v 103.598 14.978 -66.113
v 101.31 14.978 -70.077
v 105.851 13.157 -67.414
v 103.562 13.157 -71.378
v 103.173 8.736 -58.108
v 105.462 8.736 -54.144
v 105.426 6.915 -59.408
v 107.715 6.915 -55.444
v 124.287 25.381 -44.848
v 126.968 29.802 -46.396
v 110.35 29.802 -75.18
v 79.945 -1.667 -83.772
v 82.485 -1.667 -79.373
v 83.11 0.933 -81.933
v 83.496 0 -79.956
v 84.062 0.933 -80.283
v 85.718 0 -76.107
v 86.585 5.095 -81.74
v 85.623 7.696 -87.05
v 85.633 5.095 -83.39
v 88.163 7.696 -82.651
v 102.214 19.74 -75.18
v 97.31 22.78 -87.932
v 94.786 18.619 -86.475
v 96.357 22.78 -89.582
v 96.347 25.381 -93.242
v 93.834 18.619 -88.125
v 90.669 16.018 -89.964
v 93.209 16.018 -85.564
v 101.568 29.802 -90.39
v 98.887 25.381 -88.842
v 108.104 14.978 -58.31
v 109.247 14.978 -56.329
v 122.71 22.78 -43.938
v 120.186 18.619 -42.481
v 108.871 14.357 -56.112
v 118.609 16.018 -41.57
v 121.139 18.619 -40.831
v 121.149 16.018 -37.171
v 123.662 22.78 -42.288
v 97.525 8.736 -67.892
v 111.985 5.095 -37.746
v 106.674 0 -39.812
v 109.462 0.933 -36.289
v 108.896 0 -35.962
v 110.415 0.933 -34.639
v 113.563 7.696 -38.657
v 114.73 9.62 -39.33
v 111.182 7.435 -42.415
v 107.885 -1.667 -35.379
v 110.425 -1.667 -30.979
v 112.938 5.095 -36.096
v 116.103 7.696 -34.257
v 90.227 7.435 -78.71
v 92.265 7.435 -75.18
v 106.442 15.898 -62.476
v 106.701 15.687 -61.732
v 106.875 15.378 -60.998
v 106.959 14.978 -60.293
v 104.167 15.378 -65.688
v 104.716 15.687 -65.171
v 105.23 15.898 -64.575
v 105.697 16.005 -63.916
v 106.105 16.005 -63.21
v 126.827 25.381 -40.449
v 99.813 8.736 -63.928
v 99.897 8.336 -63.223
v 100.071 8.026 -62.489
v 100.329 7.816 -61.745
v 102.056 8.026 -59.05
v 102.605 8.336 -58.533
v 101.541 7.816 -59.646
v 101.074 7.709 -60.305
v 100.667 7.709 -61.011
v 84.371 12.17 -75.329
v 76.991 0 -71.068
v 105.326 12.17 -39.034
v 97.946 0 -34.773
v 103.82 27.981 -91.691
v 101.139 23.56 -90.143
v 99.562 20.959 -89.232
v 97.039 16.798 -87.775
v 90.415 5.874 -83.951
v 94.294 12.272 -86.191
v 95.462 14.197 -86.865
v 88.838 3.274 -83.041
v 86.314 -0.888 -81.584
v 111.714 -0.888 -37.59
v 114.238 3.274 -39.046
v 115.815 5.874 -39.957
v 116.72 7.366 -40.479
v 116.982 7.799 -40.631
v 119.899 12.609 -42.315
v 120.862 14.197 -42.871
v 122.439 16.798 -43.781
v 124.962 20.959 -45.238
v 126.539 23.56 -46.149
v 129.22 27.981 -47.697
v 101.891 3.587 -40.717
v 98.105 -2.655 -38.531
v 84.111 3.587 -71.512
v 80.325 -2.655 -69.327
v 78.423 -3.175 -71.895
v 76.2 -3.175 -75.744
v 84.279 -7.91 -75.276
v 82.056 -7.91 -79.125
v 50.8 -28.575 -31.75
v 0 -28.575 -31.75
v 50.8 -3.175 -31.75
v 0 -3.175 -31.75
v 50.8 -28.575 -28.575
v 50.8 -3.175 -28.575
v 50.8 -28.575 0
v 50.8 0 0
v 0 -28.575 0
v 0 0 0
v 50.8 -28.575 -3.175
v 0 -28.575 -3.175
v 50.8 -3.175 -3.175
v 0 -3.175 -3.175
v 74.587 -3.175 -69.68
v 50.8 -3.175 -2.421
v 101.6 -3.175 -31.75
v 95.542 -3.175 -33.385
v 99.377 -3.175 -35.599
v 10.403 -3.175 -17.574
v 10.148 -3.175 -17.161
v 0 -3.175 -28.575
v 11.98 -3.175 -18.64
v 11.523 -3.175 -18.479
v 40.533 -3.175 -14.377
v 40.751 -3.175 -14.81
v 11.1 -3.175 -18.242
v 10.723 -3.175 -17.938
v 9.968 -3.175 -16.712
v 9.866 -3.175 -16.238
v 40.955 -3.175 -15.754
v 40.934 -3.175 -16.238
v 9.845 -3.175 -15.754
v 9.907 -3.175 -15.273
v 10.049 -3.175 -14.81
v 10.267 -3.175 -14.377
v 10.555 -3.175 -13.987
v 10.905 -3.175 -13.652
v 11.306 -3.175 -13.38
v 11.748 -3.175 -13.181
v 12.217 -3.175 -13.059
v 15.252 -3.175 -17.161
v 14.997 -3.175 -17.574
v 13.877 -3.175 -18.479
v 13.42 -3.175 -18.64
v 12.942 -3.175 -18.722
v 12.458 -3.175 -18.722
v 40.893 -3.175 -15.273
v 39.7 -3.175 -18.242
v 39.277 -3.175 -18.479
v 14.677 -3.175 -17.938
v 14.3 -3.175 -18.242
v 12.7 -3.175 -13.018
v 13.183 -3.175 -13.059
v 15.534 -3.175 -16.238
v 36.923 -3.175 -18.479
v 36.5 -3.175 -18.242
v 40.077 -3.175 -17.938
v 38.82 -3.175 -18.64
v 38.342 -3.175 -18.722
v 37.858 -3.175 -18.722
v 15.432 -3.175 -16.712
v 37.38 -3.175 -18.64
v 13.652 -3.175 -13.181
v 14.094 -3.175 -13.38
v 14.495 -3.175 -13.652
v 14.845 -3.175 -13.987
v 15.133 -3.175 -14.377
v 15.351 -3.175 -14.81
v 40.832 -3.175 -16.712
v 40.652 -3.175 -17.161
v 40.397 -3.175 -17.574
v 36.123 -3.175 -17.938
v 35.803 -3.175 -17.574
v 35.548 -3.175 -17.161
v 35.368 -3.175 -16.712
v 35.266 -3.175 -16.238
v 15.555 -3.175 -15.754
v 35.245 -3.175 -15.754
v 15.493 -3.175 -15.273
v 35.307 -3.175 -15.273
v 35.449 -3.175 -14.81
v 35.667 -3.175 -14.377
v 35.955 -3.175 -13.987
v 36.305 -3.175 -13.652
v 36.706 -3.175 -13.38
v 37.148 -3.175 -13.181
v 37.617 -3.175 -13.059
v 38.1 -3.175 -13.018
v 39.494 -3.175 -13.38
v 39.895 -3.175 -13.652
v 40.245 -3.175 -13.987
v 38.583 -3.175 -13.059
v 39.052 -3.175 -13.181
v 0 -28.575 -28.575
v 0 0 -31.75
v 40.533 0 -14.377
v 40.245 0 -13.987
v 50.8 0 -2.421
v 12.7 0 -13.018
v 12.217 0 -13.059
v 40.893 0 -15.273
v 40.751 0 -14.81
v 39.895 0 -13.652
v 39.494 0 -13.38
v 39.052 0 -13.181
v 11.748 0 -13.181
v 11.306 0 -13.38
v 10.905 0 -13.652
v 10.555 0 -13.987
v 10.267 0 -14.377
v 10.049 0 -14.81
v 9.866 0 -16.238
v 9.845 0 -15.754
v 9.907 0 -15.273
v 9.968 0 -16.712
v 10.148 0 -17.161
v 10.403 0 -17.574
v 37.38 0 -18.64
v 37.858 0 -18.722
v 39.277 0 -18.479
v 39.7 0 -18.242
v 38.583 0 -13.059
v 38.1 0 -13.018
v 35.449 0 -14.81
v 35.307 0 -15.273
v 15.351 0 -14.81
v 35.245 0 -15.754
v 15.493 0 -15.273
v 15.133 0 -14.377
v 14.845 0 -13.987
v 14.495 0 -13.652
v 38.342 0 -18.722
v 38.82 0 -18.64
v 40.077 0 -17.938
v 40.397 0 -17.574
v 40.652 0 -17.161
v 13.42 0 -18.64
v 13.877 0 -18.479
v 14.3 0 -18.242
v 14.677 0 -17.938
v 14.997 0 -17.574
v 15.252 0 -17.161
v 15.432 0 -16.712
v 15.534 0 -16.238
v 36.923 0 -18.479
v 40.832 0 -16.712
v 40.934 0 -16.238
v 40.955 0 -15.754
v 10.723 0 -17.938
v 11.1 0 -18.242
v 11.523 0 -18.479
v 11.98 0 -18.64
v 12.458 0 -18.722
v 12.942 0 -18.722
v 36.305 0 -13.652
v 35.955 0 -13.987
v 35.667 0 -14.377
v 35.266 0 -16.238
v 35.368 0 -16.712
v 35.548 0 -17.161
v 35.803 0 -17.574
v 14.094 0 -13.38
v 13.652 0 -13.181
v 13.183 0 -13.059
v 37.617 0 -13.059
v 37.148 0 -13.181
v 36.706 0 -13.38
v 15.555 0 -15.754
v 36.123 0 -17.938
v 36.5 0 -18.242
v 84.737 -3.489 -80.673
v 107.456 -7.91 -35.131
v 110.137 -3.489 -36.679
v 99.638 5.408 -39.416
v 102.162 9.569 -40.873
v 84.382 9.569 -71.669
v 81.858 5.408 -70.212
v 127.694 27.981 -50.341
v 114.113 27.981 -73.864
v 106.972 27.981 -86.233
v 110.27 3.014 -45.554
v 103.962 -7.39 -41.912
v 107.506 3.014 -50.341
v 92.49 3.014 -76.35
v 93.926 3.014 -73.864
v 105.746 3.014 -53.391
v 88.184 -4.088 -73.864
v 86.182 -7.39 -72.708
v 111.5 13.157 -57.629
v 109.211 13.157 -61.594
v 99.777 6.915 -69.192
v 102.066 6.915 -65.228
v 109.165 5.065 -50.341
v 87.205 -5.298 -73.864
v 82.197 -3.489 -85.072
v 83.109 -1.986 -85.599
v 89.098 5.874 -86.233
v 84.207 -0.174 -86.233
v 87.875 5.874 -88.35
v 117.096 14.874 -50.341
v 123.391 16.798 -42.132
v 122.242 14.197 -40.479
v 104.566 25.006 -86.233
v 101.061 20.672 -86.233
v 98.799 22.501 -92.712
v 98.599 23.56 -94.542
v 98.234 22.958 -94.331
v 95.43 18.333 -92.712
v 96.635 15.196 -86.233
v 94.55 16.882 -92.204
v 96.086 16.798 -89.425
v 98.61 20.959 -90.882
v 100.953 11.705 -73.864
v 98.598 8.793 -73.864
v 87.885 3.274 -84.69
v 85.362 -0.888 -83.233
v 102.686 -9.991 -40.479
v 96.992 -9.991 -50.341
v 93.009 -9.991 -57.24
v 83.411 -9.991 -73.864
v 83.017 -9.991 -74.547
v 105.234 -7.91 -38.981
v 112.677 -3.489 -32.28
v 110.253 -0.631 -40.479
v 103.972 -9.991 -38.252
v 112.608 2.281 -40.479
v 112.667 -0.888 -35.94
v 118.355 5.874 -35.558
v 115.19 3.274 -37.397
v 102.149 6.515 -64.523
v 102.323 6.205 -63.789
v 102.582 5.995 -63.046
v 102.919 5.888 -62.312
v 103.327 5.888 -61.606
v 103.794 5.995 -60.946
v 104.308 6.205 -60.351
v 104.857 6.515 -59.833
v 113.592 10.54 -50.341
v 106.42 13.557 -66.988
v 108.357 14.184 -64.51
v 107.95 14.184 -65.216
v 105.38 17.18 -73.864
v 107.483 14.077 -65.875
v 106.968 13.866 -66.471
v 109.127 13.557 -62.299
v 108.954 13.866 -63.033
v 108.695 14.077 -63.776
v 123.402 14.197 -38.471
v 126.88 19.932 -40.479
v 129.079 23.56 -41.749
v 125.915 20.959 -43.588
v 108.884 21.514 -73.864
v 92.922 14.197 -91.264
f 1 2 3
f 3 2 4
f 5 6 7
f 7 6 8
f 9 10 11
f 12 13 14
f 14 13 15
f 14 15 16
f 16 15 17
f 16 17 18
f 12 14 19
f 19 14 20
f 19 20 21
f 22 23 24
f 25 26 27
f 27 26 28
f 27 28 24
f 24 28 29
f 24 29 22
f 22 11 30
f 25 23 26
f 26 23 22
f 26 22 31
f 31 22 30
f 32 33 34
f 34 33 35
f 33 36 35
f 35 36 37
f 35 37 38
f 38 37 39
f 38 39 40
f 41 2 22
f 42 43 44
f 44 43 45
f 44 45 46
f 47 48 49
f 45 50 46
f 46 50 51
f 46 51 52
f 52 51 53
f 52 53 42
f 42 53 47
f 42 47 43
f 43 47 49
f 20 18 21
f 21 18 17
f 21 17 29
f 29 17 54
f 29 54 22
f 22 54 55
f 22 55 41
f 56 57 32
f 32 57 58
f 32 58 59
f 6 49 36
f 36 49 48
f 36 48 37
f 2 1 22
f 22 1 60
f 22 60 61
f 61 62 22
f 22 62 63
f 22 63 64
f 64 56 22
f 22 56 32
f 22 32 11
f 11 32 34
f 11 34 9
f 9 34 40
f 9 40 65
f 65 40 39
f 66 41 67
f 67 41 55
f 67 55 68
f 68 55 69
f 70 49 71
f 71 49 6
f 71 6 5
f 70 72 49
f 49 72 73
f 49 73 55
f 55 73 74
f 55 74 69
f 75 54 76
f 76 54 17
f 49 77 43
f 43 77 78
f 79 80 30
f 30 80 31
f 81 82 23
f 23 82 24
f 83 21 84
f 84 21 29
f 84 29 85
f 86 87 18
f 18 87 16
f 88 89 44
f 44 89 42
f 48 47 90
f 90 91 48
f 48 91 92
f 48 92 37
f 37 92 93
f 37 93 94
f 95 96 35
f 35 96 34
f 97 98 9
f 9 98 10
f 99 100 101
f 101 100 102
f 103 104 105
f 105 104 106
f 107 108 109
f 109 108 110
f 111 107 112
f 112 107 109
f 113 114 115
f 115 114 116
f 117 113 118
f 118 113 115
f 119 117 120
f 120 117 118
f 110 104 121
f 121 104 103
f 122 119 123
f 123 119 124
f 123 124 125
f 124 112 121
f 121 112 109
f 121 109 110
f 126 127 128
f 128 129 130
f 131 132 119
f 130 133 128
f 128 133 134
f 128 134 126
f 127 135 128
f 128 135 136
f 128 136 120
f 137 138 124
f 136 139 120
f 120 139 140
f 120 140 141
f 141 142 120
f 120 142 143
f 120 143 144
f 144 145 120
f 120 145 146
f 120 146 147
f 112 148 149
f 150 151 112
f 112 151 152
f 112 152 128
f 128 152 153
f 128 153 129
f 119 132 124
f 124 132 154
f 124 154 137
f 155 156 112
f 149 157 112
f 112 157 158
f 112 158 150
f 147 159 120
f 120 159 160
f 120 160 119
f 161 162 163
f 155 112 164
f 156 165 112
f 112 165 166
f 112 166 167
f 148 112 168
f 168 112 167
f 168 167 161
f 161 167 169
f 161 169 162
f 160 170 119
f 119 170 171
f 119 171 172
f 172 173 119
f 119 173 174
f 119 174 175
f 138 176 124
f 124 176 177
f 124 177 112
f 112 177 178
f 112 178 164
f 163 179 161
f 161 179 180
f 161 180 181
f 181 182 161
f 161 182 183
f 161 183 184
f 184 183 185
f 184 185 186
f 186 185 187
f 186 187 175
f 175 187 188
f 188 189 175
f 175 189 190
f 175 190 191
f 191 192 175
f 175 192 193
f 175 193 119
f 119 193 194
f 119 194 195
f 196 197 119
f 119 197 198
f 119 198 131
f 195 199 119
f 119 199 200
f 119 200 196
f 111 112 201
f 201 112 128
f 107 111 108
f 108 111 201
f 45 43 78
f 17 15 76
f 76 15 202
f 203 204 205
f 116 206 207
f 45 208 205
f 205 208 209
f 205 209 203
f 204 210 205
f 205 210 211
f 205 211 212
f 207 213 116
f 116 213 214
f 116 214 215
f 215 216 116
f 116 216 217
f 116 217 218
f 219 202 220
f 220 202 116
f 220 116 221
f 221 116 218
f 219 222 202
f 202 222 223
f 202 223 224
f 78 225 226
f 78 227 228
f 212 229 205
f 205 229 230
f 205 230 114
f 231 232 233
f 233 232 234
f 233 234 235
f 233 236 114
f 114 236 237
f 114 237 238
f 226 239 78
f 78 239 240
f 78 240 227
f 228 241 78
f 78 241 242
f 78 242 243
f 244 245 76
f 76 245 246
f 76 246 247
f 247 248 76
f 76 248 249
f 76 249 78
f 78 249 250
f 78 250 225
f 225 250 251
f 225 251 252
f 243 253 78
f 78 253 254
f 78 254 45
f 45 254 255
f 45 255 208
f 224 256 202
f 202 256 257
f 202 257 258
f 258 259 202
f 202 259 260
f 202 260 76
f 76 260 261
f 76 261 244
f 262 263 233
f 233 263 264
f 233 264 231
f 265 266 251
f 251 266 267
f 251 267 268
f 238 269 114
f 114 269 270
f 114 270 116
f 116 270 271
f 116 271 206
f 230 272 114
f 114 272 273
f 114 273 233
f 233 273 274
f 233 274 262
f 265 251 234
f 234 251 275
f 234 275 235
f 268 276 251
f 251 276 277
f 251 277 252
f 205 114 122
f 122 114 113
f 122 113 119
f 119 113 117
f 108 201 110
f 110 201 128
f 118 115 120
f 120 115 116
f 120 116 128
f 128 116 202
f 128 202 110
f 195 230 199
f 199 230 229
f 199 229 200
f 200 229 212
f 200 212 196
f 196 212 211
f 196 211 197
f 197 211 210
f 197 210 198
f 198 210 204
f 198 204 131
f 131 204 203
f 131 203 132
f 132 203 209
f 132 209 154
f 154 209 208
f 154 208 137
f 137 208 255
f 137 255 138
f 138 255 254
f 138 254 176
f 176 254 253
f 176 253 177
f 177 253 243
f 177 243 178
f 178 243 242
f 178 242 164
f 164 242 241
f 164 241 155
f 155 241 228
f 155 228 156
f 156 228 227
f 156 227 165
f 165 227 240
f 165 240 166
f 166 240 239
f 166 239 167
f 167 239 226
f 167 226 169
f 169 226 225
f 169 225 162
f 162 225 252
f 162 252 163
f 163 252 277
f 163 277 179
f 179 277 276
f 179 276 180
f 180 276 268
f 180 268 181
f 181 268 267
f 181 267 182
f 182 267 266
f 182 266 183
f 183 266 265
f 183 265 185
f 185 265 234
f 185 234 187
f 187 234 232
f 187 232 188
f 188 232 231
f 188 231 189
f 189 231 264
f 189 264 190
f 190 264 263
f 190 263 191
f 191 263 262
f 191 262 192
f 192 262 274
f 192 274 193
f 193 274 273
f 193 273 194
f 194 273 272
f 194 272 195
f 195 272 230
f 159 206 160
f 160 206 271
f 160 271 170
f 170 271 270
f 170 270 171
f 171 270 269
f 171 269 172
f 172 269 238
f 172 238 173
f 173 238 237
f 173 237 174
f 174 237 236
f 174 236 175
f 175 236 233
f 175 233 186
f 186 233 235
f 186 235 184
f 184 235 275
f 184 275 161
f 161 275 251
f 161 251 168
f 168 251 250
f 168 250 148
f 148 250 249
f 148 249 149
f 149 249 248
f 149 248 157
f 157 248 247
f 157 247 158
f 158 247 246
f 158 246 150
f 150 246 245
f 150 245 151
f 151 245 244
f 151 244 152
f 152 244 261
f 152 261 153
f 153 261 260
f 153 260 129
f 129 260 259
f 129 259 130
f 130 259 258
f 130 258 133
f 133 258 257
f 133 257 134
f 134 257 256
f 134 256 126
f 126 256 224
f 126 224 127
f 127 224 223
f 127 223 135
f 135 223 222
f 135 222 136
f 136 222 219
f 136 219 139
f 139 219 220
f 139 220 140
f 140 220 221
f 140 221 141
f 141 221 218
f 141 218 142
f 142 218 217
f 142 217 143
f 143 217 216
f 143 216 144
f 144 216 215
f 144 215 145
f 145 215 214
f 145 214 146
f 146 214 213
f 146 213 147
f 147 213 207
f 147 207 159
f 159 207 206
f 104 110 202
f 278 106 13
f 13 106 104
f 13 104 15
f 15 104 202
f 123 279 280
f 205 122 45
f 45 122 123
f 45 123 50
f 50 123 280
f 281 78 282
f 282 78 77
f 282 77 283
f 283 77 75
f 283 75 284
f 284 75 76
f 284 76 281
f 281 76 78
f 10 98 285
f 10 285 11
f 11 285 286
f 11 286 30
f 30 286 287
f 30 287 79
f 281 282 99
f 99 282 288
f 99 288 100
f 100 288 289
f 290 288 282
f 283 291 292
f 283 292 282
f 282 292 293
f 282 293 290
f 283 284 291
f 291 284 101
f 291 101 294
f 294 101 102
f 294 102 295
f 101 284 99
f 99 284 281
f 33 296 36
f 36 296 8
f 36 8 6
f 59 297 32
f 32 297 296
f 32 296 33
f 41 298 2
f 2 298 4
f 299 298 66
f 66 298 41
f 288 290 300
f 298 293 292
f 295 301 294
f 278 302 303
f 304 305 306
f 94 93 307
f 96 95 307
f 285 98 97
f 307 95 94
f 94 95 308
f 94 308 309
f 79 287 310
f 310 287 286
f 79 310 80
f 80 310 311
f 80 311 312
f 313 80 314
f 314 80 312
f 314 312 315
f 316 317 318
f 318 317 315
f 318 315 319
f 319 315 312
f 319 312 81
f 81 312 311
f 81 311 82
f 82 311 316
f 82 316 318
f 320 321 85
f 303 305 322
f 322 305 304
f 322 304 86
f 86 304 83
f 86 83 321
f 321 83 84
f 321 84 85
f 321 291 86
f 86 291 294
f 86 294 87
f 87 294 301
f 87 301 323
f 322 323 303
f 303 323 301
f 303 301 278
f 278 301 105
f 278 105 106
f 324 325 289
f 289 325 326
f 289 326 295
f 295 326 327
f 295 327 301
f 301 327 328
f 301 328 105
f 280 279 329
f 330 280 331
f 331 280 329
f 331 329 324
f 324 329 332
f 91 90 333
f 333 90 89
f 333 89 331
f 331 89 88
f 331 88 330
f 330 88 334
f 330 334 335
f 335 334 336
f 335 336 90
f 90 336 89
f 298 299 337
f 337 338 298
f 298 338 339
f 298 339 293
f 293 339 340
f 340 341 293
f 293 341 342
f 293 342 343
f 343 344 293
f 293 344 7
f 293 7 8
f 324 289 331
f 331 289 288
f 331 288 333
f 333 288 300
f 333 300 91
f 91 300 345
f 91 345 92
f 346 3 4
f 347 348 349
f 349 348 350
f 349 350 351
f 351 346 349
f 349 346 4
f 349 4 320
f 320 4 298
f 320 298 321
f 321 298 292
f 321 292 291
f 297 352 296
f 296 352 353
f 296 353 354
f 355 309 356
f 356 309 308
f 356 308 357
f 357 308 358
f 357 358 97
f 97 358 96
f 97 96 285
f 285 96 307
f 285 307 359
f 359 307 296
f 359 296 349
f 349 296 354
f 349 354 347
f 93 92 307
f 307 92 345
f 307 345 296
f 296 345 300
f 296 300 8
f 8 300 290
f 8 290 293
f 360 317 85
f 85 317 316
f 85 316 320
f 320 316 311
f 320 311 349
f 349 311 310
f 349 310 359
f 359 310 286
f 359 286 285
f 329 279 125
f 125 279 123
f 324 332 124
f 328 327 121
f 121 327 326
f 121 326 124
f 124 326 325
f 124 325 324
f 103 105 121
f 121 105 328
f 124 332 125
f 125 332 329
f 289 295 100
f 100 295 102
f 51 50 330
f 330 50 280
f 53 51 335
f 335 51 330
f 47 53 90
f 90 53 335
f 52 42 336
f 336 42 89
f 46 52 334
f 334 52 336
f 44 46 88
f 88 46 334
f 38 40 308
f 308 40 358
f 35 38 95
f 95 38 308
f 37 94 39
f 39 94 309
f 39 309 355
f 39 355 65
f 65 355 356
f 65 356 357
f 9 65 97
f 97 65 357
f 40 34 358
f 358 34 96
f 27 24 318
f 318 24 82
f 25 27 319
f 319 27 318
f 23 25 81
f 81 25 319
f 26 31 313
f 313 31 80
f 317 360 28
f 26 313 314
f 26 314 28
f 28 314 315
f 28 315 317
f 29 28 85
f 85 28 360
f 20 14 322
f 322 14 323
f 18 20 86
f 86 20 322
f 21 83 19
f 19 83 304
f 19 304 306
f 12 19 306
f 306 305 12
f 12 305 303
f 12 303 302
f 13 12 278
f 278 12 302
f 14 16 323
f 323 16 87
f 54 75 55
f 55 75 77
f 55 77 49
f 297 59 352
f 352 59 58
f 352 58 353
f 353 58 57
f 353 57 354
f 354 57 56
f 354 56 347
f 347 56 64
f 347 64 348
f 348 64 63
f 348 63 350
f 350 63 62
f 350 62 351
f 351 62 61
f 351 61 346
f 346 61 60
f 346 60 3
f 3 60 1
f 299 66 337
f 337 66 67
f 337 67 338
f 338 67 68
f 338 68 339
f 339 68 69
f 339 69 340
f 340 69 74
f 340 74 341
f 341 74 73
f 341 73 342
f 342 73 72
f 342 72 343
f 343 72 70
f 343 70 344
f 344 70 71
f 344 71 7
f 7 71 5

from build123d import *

# Parameters (mm, degrees)
BOSS_EXTRUDE1_DEPTH  = 50.8
SKETCH3_R            = 2.8575
CUT_EXTRUDE1_DEPTH   = 29.575
BOSS_EXTRUDE2_DEPTH  = 3.175
BOSS_EXTRUDE4_DEPTH  = 50.8
CUT_EXTRUDE2_REACH   = 108.711
BOSS_EXTRUDE5_DEPTH  = 8.255
BOSS_EXTRUDE6_REACH  = 116.966
CUT_EXTRUDE3_DEPTH   = 8.255
BOSS_EXTRUDE10_DEPTH = 3.175
BOSS_EXTRUDE11_DEPTH = 8.255
CUT_EXTRUDE4_START   = -11.43
CUT_EXTRUDE4_DEPTH   = 8.255
BOSS_EXTRUDE12_DEPTH = 4.445
CUT_EXTRUDE5_DEPTH   = 4.445
BOSS_EXTRUDE13_START = -50.8
BOSS_EXTRUDE13_DEPTH = 4.445
CUT_EXTRUDE6_START   = -50.8
CUT_EXTRUDE6_DEPTH   = 4.445
SKETCH18_R           = 5.08
CUT_EXTRUDE7_DEPTH   = 55.801163899


with BuildPart() as part:
    # Sketch2 → Boss-Extrude1 (new body)
    with BuildSketch(Plane(origin=(0, 0, 0), x_dir=(0, 0, -1), z_dir=(1, 0, 0))):
        Polygon((0, 0), (31.75, 0), (31.75, -28.575), (28.575, -28.575), (28.575, -3.175), (3.175, -3.175), (3.175, -28.575), (0, -28.575), align=None)
    extrude(amount=BOSS_EXTRUDE1_DEPTH)

    # Sketch3 → Cut-Extrude1 (cut, through all)
    with BuildSketch(Plane(origin=(0, 0, 0), x_dir=(1, 0, 0), z_dir=(0, 1, 0))):
        with Locations((12.7, 15.875)):
            Circle(SKETCH3_R)
        with Locations((38.1, 15.875)):
            Circle(SKETCH3_R)
    extrude(amount=-CUT_EXTRUDE1_DEPTH, mode=Mode.SUBTRACT)

    # Sketch4 → Boss-Extrude2 (add)
    with BuildSketch(Plane(origin=(0, 0, 0), x_dir=(1, 0, 0), z_dir=(0, 1, 0))):
        Polygon((0, 31.75), (76.2, 75.744090512), (101.6, 31.75), (50.8, 2.420606325), (50.8, 31.75), align=None)
    extrude(amount=-BOSS_EXTRUDE2_DEPTH)

    # Sketch6 → Boss-Extrude4 (add)
    with BuildSketch(Plane(origin=(-13.748153285, 0, -23.8125), x_dir=(-0.866025404, 0, 0.5), z_dir=(-0.5, 0, -0.866025404))):
        Polygon((-103.863181024, -3.175), (-128.994432583, 32.716146821), (-126.393624843, 34.537252006), (-102.210380639, 0), (-103.863181024, 0), align=None)
    extrude(amount=-BOSS_EXTRUDE4_DEPTH)

    # Sketch7 → Cut-Extrude2 (cut, up to next)
    with BuildSketch(Plane(origin=(61.648020601, -49.844275413, -35.592501289), x_dir=(-0.318495595, 0.25751325, -0.91227599), z_dir=(0.70940648, -0.573576436, -0.409576022)), mode=Mode.PRIVATE) as cut_extrude2_sk1:
        Polygon((20.449889648, 80.334208308), (35.520058582, 75.3436539), (33.124592466, 68.109972811), (18.054423532, 73.100527219), align=None)
    cut_extrude2_tool1 = extrude(cut_extrude2_sk1.sketch, amount=-CUT_EXTRUDE2_REACH, mode=Mode.PRIVATE) & part.part
    add(cut_extrude2_tool1.solids().sort_by_distance((99.782151, 14.770573, -60.029858))[0], mode=Mode.SUBTRACT)
    # Sketch7 → Cut-Extrude2 (cut, up to next)
    with BuildSketch(Plane(origin=(61.648020601, -49.844275413, -35.592501289), x_dir=(-0.318495595, 0.25751325, -0.91227599), z_dir=(0.70940648, -0.573576436, -0.409576022)), mode=Mode.PRIVATE) as cut_extrude2_sk2:
        Polygon((7.213752471, 71.673620272), (40.970930883, 60.494778398), (39.373953472, 55.672324339), (5.61677506, 66.851166213), align=None)
    cut_extrude2_tool2 = extrude(cut_extrude2_sk2.sketch, amount=-CUT_EXTRUDE2_REACH, mode=Mode.PRIVATE) & part.part
    add(cut_extrude2_tool2.solids().sort_by_distance((94.262219, 5.667746, -56.842924))[0], mode=Mode.SUBTRACT)

    # Sketch8 → Boss-Extrude5 (add)
    with BuildSketch(Plane(origin=(61.648020601, -49.844275413, -35.592501289), x_dir=(-0.318495595, 0.25751325, -0.91227599), z_dir=(0.70940648, -0.573576436, -0.409576022))):
        Polygon((-4.21199432, 61.410144483), (44.012546269, 45.440370378), (57.786476434, 87.034036636), (9.561935845, 103.003810741), align=None)
        Polygon((11.577858751, 98.991666073), (-0.199849652, 63.426067388), (41.996623363, 49.452515046), (53.774331766, 85.018113731), align=None, mode=Mode.SUBTRACT)
    extrude(amount=BOSS_EXTRUDE5_DEPTH)

    # Boss-Extrude6: up to this face of the body (flat: up to its plane)
    boss_extrude6_end = Plane(part.part.faces().sort_by_distance((50.815624122, -3.175, -33.129894289))[0])
    # Sketch9 → Boss-Extrude6 (add, up to the picked face)
    with BuildSketch(Plane(origin=(67.504171093, -54.579148895, -38.973551352), x_dir=(-0.318495595, 0.25751325, -0.91227599), z_dir=(0.70940648, -0.573576436, -0.409576022)), mode=Mode.PRIVATE) as boss_extrude6_sk1:
        Polygon((0.007652981, 60.012789249), (39.792898967, 46.837725612), (38.994410262, 44.426498583), (-0.790835724, 57.601562219), align=None)
    boss_extrude6_tool1 = split(extrude(boss_extrude6_sk1.sketch, amount=-BOSS_EXTRUDE6_REACH, mode=Mode.PRIVATE), bisect_by=boss_extrude6_end, keep=Keep.BOTH, mode=Mode.PRIVATE)
    add(boss_extrude6_tool1.solids().sort_by_distance((94.125301, -8.950197, -56.763874))[0])

    # Sketch10 → Cut-Extrude3 (cut)
    with BuildSketch(Plane(origin=(67.504171093, -54.579148895, -38.973551352), x_dir=(-0.318495595, 0.25751325, -0.91227599), z_dir=(0.70940648, -0.573576436, -0.409576022))):
        Polygon((4.019797649, 62.028712154), (37.776976062, 50.84987028), (36.978487357, 48.438643251), (3.221308944, 59.617485125), align=None)
    extrude(amount=-CUT_EXTRUDE3_DEPTH, mode=Mode.SUBTRACT)

    # Sketch14 → Boss-Extrude10 (add)
    with BuildSketch(Plane(origin=(67.504171093, -54.579148895, -38.973551352), x_dir=(-0.318495595, 0.25751325, -0.91227599), z_dir=(0.70940648, -0.573576436, -0.409576022))):
        Polygon((-2.515205822, 66.534001921), (-7.337659881, 68.130979331), (-3.744460707, 78.981500964), (1.077993352, 77.384523553), (0.07988247, 74.370489766), (-1.728537802, 74.969356295), (-3.325515212, 70.146902236), (-1.51709494, 69.548035707), align=None)
        Polygon((5.058616193, 95.464786046), (6.867036465, 94.865919517), (7.865147347, 97.879953304), (3.042693288, 99.476930714), (-0.550505886, 88.626409082), (4.271948173, 87.029431671), (5.270059055, 90.043465458), (3.461638782, 90.642331987), align=None)
        Polygon((55.303019916, 73.474824824), (56.899997326, 78.297278883), (55.091577054, 78.896145411), (56.089687936, 81.910179198), (60.912141995, 80.313201788), (57.318942821, 69.462680155), (52.496488762, 71.059657566), (53.494599644, 74.073691353), align=None)
        Polygon((48.515865921, 52.979395073), (46.707445649, 53.578261602), (45.709334767, 50.564227815), (50.531788826, 48.967250405), (54.124988, 59.817772037), (49.302533941, 61.414749448), (48.304423059, 58.400715661), (50.112843331, 57.801849132), align=None)
    extrude(amount=-BOSS_EXTRUDE10_DEPTH)

    # Sketch15 → Boss-Extrude11 (add)
    with BuildSketch(Plane(origin=(61.648020601, -49.844275413, -35.592501289), x_dir=(-0.318495595, 0.25751325, -0.91227599), z_dir=(0.70940648, -0.573576436, -0.409576022))):
        Polygon((4.019797649, 62.028712154), (7.213752471, 71.673620272), (40.970930883, 60.494778398), (37.776976062, 50.84987028), (41.996623363, 49.452515046), (53.774331766, 85.018113731), (11.577858751, 98.991666073), (-0.199849652, 63.426067388), align=None)
        Polygon((20.449889648, 80.334208308), (35.520058582, 75.3436539), (33.124592466, 68.109972811), (18.054423532, 73.100527219), align=None, mode=Mode.SUBTRACT)
    extrude(amount=BOSS_EXTRUDE11_DEPTH)

    # Sketch16 → Cut-Extrude4 (cut)
    with BuildSketch(Plane(origin=(67.504171093, -54.579148895, -38.973551352), x_dir=(-0.318495595, 0.25751325, -0.91227599), z_dir=(0.70940648, -0.573576436, -0.409576022)).offset(CUT_EXTRUDE4_START)):
        Polygon((9.561935845, 103.003810741), (-3.213883439, 64.42417827), (1.005763863, 63.026823036), (5.197829565, 75.68576494), (44.983075551, 62.510701303), (40.791009849, 49.851759399), (45.01065715, 48.454404165), (57.786476434, 87.034036636), align=None)
    extrude(amount=CUT_EXTRUDE4_DEPTH, mode=Mode.SUBTRACT)

    # Sketch17 → Boss-Extrude12 (add)
    with BuildSketch(Plane(origin=(11.651846715, 0, 20.181590512), x_dir=(0.866025404, 0, -0.5), z_dir=(0.5, 0, 0.866025404))):
        Polygon((111.120352225, -1.667395138), (112.287874869, 0), (104.864254679, 0), (109.845578595, -3.487960556), align=None)
    extrude(amount=-BOSS_EXTRUDE12_DEPTH)

    # Sketch17<3> → Cut-Extrude5 (cut)
    with BuildSketch(Plane(origin=(11.651846715, 0, 20.181590512), x_dir=(0.866025404, 0, -0.5), z_dir=(0.5, 0, 0.866025404))):
        Polygon((102.210380639, 0), (104.864254679, 0), (103.083478469, 1.246912926), align=None)
    extrude(amount=-CUT_EXTRUDE5_DEPTH, mode=Mode.SUBTRACT)

    # Sketch17<4> → Boss-Extrude13 (add)
    with BuildSketch(Plane(origin=(11.651846715, 0, 20.181590512), x_dir=(0.866025404, 0, -0.5), z_dir=(0.5, 0, 0.866025404)).offset(BOSS_EXTRUDE13_START)):
        Polygon((111.120352225, -1.667395138), (112.287874869, 0), (104.864254679, 0), (109.845578595, -3.487960556), align=None)
    extrude(amount=BOSS_EXTRUDE13_DEPTH)

    # Sketch17<5> → Cut-Extrude6 (cut)
    with BuildSketch(Plane(origin=(11.651846715, 0, 20.181590512), x_dir=(0.866025404, 0, -0.5), z_dir=(0.5, 0, 0.866025404)).offset(CUT_EXTRUDE6_START)):
        Polygon((102.210380639, 0), (104.864254679, 0), (103.083478469, 1.246912926), align=None)
    extrude(amount=CUT_EXTRUDE6_DEPTH, mode=Mode.SUBTRACT)

    # Sketch18 → Cut-Extrude7 (cut, through all)
    with BuildSketch(Plane(origin=(65.251805519, -52.758043709, -37.673147481), x_dir=(0.318495595, -0.25751325, 0.91227599), z_dir=(-0.70940648, 0.573576436, 0.409576022))):
        with Locations((-26.787241057, 74.222090559)):
            Circle(SKETCH18_R)
    extrude(amount=-CUT_EXTRUDE7_DEPTH, mode=Mode.SUBTRACT)


solid = part.part
